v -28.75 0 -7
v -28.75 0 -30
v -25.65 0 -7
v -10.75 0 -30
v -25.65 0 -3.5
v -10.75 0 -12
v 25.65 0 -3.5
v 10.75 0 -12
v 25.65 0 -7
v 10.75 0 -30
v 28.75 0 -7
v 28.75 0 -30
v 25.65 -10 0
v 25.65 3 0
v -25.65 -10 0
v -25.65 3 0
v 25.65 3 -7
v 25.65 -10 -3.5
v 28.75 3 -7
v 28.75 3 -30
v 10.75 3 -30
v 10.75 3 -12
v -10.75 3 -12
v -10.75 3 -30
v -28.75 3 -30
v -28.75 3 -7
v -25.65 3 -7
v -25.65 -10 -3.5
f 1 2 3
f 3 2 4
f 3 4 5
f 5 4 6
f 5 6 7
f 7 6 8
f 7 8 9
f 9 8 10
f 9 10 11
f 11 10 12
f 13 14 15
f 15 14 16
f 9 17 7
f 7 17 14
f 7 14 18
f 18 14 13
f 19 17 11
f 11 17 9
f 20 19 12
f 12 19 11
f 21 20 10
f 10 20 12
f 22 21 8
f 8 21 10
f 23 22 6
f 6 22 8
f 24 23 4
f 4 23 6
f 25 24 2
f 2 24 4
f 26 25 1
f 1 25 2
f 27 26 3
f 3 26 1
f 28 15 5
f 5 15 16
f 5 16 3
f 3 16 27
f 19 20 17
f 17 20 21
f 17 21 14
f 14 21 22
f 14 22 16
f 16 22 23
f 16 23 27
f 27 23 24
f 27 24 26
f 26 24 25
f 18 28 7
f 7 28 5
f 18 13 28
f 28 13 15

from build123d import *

# Parameters (mm, degrees)
BOSS_EXTRUDE1_DEPTH = 3
SKETCH3_W           = 51.3
SKETCH3_H           = 3.5
BOSS_EXTRUDE2_DEPTH = 10


with BuildPart() as part:
    # Sketch2 → Boss-Extrude1 (new body)
    with BuildSketch(Plane(origin=(0, 0, 0), x_dir=(1, 0, 0), z_dir=(0, 1, 0))):
        Polygon((-25.65, 0), (0, 0), (0, 12), (-10.75, 12), (-10.75, 30), (-28.75, 30), (-28.75, 7), (-25.65, 7), align=None)
        Polygon((0, 0), (25.65, 0), (25.65, 7), (28.75, 7), (28.75, 30), (10.75, 30), (10.75, 12), (0, 12), align=None)
    extrude(amount=BOSS_EXTRUDE1_DEPTH)

    # Sketch3 → Boss-Extrude2 (add)
    with BuildSketch(Plane.XZ):
        with Locations((0, -1.75)):
            Rectangle(SKETCH3_W, SKETCH3_H)
    extrude(amount=BOSS_EXTRUDE2_DEPTH)


solid = part.part
